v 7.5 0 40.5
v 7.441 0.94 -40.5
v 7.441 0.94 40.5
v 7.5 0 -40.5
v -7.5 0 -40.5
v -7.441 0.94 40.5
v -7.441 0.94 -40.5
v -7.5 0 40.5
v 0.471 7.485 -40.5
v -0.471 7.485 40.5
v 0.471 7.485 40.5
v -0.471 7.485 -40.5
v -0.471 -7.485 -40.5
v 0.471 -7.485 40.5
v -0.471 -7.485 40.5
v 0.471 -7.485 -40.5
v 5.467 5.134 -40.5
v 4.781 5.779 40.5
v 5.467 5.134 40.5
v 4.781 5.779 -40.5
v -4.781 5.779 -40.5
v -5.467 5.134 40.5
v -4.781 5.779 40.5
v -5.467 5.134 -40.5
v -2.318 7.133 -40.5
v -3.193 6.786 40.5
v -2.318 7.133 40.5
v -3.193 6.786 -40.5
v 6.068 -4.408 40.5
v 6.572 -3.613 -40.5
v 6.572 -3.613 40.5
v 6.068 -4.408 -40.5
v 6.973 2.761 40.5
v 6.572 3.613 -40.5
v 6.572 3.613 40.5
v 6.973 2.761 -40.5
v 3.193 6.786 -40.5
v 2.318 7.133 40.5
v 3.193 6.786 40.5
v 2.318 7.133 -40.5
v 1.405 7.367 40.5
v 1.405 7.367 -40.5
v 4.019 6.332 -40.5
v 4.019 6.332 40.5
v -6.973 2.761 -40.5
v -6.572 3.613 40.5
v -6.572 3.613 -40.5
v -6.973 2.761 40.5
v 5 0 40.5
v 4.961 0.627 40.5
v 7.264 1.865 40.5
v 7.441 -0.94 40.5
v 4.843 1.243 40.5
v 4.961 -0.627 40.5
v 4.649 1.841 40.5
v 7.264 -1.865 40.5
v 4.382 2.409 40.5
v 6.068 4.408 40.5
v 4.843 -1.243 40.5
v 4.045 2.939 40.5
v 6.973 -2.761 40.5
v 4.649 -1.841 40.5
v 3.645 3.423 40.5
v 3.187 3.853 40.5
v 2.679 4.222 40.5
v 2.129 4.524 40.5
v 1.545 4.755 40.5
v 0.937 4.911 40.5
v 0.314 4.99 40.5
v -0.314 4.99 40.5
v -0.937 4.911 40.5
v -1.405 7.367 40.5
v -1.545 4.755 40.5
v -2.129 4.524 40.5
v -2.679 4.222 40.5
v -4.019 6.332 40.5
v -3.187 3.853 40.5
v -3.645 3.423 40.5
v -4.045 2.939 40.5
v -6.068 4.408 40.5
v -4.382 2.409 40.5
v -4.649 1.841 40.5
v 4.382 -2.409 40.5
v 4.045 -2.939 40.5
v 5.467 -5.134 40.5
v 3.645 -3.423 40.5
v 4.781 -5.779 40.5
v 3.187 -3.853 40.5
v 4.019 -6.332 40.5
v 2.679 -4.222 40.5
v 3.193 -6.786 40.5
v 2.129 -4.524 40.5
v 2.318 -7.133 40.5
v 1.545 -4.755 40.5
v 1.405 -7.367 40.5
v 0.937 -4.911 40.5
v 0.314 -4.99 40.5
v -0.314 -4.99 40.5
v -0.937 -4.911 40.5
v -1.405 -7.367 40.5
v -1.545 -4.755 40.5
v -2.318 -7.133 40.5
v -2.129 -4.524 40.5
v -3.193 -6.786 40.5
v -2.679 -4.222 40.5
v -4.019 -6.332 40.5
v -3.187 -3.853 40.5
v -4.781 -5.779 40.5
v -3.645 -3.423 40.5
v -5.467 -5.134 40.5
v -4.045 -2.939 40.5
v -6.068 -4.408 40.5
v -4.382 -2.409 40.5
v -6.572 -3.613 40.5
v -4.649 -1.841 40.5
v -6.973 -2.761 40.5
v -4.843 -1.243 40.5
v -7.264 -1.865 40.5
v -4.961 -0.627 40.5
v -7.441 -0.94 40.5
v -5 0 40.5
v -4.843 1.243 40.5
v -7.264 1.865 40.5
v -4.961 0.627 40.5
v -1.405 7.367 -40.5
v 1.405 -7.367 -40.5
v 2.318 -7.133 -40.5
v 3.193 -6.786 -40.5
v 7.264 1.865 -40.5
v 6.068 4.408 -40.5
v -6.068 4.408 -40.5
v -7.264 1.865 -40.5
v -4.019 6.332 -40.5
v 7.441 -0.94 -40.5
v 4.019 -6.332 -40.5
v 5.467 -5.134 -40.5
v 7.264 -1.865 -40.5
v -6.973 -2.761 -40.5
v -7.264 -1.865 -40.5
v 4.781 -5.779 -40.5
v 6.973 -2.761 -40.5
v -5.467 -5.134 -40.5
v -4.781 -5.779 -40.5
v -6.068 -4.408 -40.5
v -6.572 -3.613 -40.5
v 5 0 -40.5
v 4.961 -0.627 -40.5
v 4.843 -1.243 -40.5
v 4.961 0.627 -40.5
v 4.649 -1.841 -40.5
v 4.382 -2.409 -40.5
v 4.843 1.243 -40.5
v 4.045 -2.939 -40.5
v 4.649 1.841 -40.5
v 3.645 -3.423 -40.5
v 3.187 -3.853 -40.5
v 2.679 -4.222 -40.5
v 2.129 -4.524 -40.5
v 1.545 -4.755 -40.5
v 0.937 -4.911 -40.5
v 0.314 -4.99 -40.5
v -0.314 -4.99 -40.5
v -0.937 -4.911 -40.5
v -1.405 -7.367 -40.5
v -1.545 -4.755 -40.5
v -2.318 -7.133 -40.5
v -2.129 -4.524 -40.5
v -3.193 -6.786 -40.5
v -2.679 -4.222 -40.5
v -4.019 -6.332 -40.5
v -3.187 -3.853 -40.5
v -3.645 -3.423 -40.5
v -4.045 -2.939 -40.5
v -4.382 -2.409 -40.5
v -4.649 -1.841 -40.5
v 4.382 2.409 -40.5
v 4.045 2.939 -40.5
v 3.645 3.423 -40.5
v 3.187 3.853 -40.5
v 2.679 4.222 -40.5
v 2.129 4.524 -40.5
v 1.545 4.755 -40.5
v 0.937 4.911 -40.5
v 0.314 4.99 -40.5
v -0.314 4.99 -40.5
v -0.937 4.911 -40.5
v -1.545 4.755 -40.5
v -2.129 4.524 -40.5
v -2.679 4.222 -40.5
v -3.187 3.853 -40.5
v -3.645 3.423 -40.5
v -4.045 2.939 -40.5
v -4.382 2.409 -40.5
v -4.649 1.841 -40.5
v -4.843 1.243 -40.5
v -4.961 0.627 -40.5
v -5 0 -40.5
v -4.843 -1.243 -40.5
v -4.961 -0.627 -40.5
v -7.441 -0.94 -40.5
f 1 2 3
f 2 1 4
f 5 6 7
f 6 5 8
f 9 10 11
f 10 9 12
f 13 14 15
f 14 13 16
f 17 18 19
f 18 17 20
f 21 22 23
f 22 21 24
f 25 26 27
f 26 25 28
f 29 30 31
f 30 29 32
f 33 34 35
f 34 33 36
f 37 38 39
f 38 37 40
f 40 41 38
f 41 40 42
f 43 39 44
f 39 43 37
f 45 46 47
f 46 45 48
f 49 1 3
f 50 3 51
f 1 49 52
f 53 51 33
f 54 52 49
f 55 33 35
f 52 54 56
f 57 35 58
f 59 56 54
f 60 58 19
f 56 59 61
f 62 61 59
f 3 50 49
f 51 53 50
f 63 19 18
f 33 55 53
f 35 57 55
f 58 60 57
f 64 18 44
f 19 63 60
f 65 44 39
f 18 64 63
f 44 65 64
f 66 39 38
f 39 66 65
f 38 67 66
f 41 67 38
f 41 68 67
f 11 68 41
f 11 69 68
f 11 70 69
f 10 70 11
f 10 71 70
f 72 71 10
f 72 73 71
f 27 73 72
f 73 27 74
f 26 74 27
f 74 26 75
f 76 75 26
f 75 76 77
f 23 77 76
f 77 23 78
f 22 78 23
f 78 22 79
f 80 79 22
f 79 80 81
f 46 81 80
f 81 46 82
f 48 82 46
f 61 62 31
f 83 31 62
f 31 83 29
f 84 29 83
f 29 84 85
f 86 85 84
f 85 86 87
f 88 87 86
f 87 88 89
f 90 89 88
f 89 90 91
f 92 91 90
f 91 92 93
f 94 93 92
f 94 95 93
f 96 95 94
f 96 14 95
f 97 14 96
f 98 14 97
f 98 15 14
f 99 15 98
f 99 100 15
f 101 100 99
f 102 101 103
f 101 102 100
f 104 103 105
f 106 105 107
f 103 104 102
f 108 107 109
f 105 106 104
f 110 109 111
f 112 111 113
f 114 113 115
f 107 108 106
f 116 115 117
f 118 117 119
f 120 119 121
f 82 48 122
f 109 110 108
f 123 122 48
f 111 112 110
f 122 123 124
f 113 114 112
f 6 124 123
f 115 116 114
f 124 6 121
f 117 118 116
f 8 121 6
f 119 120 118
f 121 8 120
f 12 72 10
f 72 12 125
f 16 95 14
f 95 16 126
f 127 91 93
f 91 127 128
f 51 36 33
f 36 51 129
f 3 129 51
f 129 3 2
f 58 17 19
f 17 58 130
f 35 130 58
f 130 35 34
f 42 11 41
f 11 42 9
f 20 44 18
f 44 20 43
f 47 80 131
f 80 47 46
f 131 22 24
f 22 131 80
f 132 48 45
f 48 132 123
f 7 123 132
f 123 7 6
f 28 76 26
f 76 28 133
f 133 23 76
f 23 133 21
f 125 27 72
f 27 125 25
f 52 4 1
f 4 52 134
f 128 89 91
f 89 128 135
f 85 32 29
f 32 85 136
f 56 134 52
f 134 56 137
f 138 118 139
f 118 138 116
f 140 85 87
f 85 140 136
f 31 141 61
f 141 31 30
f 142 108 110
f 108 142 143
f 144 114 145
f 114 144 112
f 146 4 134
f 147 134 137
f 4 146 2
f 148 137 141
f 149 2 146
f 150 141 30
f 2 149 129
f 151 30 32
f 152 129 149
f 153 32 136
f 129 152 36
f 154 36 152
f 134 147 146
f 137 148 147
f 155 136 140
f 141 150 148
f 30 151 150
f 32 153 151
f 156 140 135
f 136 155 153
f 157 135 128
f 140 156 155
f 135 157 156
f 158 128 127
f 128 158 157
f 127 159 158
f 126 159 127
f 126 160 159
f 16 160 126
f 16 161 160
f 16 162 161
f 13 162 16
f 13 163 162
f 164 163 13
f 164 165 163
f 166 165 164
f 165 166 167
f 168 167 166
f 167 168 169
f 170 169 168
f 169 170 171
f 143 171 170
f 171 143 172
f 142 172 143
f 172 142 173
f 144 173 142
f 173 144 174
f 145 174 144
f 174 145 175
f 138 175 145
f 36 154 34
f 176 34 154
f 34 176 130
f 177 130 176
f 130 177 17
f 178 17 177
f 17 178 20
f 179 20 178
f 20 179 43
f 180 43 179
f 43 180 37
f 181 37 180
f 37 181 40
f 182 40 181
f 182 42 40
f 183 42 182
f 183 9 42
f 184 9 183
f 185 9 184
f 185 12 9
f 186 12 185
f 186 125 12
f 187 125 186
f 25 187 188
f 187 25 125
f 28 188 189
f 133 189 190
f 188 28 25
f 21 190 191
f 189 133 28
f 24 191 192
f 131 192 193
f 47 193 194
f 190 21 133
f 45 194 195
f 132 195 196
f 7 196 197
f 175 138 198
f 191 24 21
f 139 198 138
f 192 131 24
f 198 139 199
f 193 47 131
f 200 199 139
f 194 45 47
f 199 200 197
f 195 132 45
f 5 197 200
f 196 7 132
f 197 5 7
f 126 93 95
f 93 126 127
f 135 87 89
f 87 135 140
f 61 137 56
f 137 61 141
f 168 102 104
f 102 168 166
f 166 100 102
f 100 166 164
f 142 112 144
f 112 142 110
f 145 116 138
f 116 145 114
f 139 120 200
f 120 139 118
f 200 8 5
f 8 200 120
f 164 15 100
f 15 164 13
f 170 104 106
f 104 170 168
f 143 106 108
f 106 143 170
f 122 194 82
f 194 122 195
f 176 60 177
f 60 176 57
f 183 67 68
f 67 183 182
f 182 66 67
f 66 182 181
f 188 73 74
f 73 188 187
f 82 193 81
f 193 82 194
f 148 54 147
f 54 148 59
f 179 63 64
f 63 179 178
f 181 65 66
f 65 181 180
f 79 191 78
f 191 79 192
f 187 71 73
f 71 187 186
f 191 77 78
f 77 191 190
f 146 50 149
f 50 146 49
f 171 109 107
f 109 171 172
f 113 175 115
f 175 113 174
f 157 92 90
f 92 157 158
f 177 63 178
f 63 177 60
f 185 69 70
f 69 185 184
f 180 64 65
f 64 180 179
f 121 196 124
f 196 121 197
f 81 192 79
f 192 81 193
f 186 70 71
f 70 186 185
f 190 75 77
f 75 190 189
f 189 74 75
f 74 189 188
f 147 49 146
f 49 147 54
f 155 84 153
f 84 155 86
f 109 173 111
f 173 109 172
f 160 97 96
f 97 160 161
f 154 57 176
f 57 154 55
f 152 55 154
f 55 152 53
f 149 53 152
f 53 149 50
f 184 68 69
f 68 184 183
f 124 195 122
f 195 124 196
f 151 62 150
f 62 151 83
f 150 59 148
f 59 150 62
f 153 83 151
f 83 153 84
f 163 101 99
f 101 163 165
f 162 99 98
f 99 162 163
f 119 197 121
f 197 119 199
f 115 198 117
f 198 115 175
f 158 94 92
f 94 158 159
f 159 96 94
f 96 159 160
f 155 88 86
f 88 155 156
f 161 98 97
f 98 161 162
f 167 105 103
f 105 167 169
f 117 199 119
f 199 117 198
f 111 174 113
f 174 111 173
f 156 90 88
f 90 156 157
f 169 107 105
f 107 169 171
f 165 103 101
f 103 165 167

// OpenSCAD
$fn = 50;


difference() {
	union() {
		translate(v = [0, 0, -40.5000000000]) {
			cylinder(h = 81, r = 7.5000000000);
		}
	}
	union() {
		translate(v = [0, 0, -100.0000000000]) {
			cylinder(h = 200, r = 5);
		}
	}
}
